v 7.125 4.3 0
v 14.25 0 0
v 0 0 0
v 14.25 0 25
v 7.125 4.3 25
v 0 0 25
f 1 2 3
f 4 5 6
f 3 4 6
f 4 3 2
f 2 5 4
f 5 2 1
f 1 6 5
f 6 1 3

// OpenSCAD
y = 14.25;
a = 4.3;
height = 25;
difference() {
//    cube([100, 100, 25]);
            polyhedron(
                points = 
                [
                    [0,0,0],
                    [y,0,0],
                    [y/2,a,0],
                    [0,0,height],
                    [y,0,height],
                    [y/2,a,height],
                ],
                faces = 
                [
                    [0,1,2],
                    [3,4,1,0],
                    [3,5,4],
                    [4,5,2,1],
                    [5,3,0,2]
                ]);   
//    CubePoints = [
//  [  0,  0,  0 ],  //0
//  [ 10,  0,  0 ],  //1
//  [ 10,  7,  0 ],  //2
//  [  0,  7,  0 ],  //3
//  [  0,  0,  5 ],  //4
//  [ 10,  0,  5 ],  //5
//  [ 10,  7,  5 ],  //6
//  [  0,  7,  5 ]]; //7
//  
//CubeFaces = [
//  [0,1,2,3],  // bottom
//  [4,5,1,0],  // front
//  [7,6,5,4],  // top
//  [5,6,2,1],  // right
//  [6,7,3,2],  // back
//  [7,4,0,3]]; // left
//  
//polyhedron( CubePoints, CubeFaces );
    
};
